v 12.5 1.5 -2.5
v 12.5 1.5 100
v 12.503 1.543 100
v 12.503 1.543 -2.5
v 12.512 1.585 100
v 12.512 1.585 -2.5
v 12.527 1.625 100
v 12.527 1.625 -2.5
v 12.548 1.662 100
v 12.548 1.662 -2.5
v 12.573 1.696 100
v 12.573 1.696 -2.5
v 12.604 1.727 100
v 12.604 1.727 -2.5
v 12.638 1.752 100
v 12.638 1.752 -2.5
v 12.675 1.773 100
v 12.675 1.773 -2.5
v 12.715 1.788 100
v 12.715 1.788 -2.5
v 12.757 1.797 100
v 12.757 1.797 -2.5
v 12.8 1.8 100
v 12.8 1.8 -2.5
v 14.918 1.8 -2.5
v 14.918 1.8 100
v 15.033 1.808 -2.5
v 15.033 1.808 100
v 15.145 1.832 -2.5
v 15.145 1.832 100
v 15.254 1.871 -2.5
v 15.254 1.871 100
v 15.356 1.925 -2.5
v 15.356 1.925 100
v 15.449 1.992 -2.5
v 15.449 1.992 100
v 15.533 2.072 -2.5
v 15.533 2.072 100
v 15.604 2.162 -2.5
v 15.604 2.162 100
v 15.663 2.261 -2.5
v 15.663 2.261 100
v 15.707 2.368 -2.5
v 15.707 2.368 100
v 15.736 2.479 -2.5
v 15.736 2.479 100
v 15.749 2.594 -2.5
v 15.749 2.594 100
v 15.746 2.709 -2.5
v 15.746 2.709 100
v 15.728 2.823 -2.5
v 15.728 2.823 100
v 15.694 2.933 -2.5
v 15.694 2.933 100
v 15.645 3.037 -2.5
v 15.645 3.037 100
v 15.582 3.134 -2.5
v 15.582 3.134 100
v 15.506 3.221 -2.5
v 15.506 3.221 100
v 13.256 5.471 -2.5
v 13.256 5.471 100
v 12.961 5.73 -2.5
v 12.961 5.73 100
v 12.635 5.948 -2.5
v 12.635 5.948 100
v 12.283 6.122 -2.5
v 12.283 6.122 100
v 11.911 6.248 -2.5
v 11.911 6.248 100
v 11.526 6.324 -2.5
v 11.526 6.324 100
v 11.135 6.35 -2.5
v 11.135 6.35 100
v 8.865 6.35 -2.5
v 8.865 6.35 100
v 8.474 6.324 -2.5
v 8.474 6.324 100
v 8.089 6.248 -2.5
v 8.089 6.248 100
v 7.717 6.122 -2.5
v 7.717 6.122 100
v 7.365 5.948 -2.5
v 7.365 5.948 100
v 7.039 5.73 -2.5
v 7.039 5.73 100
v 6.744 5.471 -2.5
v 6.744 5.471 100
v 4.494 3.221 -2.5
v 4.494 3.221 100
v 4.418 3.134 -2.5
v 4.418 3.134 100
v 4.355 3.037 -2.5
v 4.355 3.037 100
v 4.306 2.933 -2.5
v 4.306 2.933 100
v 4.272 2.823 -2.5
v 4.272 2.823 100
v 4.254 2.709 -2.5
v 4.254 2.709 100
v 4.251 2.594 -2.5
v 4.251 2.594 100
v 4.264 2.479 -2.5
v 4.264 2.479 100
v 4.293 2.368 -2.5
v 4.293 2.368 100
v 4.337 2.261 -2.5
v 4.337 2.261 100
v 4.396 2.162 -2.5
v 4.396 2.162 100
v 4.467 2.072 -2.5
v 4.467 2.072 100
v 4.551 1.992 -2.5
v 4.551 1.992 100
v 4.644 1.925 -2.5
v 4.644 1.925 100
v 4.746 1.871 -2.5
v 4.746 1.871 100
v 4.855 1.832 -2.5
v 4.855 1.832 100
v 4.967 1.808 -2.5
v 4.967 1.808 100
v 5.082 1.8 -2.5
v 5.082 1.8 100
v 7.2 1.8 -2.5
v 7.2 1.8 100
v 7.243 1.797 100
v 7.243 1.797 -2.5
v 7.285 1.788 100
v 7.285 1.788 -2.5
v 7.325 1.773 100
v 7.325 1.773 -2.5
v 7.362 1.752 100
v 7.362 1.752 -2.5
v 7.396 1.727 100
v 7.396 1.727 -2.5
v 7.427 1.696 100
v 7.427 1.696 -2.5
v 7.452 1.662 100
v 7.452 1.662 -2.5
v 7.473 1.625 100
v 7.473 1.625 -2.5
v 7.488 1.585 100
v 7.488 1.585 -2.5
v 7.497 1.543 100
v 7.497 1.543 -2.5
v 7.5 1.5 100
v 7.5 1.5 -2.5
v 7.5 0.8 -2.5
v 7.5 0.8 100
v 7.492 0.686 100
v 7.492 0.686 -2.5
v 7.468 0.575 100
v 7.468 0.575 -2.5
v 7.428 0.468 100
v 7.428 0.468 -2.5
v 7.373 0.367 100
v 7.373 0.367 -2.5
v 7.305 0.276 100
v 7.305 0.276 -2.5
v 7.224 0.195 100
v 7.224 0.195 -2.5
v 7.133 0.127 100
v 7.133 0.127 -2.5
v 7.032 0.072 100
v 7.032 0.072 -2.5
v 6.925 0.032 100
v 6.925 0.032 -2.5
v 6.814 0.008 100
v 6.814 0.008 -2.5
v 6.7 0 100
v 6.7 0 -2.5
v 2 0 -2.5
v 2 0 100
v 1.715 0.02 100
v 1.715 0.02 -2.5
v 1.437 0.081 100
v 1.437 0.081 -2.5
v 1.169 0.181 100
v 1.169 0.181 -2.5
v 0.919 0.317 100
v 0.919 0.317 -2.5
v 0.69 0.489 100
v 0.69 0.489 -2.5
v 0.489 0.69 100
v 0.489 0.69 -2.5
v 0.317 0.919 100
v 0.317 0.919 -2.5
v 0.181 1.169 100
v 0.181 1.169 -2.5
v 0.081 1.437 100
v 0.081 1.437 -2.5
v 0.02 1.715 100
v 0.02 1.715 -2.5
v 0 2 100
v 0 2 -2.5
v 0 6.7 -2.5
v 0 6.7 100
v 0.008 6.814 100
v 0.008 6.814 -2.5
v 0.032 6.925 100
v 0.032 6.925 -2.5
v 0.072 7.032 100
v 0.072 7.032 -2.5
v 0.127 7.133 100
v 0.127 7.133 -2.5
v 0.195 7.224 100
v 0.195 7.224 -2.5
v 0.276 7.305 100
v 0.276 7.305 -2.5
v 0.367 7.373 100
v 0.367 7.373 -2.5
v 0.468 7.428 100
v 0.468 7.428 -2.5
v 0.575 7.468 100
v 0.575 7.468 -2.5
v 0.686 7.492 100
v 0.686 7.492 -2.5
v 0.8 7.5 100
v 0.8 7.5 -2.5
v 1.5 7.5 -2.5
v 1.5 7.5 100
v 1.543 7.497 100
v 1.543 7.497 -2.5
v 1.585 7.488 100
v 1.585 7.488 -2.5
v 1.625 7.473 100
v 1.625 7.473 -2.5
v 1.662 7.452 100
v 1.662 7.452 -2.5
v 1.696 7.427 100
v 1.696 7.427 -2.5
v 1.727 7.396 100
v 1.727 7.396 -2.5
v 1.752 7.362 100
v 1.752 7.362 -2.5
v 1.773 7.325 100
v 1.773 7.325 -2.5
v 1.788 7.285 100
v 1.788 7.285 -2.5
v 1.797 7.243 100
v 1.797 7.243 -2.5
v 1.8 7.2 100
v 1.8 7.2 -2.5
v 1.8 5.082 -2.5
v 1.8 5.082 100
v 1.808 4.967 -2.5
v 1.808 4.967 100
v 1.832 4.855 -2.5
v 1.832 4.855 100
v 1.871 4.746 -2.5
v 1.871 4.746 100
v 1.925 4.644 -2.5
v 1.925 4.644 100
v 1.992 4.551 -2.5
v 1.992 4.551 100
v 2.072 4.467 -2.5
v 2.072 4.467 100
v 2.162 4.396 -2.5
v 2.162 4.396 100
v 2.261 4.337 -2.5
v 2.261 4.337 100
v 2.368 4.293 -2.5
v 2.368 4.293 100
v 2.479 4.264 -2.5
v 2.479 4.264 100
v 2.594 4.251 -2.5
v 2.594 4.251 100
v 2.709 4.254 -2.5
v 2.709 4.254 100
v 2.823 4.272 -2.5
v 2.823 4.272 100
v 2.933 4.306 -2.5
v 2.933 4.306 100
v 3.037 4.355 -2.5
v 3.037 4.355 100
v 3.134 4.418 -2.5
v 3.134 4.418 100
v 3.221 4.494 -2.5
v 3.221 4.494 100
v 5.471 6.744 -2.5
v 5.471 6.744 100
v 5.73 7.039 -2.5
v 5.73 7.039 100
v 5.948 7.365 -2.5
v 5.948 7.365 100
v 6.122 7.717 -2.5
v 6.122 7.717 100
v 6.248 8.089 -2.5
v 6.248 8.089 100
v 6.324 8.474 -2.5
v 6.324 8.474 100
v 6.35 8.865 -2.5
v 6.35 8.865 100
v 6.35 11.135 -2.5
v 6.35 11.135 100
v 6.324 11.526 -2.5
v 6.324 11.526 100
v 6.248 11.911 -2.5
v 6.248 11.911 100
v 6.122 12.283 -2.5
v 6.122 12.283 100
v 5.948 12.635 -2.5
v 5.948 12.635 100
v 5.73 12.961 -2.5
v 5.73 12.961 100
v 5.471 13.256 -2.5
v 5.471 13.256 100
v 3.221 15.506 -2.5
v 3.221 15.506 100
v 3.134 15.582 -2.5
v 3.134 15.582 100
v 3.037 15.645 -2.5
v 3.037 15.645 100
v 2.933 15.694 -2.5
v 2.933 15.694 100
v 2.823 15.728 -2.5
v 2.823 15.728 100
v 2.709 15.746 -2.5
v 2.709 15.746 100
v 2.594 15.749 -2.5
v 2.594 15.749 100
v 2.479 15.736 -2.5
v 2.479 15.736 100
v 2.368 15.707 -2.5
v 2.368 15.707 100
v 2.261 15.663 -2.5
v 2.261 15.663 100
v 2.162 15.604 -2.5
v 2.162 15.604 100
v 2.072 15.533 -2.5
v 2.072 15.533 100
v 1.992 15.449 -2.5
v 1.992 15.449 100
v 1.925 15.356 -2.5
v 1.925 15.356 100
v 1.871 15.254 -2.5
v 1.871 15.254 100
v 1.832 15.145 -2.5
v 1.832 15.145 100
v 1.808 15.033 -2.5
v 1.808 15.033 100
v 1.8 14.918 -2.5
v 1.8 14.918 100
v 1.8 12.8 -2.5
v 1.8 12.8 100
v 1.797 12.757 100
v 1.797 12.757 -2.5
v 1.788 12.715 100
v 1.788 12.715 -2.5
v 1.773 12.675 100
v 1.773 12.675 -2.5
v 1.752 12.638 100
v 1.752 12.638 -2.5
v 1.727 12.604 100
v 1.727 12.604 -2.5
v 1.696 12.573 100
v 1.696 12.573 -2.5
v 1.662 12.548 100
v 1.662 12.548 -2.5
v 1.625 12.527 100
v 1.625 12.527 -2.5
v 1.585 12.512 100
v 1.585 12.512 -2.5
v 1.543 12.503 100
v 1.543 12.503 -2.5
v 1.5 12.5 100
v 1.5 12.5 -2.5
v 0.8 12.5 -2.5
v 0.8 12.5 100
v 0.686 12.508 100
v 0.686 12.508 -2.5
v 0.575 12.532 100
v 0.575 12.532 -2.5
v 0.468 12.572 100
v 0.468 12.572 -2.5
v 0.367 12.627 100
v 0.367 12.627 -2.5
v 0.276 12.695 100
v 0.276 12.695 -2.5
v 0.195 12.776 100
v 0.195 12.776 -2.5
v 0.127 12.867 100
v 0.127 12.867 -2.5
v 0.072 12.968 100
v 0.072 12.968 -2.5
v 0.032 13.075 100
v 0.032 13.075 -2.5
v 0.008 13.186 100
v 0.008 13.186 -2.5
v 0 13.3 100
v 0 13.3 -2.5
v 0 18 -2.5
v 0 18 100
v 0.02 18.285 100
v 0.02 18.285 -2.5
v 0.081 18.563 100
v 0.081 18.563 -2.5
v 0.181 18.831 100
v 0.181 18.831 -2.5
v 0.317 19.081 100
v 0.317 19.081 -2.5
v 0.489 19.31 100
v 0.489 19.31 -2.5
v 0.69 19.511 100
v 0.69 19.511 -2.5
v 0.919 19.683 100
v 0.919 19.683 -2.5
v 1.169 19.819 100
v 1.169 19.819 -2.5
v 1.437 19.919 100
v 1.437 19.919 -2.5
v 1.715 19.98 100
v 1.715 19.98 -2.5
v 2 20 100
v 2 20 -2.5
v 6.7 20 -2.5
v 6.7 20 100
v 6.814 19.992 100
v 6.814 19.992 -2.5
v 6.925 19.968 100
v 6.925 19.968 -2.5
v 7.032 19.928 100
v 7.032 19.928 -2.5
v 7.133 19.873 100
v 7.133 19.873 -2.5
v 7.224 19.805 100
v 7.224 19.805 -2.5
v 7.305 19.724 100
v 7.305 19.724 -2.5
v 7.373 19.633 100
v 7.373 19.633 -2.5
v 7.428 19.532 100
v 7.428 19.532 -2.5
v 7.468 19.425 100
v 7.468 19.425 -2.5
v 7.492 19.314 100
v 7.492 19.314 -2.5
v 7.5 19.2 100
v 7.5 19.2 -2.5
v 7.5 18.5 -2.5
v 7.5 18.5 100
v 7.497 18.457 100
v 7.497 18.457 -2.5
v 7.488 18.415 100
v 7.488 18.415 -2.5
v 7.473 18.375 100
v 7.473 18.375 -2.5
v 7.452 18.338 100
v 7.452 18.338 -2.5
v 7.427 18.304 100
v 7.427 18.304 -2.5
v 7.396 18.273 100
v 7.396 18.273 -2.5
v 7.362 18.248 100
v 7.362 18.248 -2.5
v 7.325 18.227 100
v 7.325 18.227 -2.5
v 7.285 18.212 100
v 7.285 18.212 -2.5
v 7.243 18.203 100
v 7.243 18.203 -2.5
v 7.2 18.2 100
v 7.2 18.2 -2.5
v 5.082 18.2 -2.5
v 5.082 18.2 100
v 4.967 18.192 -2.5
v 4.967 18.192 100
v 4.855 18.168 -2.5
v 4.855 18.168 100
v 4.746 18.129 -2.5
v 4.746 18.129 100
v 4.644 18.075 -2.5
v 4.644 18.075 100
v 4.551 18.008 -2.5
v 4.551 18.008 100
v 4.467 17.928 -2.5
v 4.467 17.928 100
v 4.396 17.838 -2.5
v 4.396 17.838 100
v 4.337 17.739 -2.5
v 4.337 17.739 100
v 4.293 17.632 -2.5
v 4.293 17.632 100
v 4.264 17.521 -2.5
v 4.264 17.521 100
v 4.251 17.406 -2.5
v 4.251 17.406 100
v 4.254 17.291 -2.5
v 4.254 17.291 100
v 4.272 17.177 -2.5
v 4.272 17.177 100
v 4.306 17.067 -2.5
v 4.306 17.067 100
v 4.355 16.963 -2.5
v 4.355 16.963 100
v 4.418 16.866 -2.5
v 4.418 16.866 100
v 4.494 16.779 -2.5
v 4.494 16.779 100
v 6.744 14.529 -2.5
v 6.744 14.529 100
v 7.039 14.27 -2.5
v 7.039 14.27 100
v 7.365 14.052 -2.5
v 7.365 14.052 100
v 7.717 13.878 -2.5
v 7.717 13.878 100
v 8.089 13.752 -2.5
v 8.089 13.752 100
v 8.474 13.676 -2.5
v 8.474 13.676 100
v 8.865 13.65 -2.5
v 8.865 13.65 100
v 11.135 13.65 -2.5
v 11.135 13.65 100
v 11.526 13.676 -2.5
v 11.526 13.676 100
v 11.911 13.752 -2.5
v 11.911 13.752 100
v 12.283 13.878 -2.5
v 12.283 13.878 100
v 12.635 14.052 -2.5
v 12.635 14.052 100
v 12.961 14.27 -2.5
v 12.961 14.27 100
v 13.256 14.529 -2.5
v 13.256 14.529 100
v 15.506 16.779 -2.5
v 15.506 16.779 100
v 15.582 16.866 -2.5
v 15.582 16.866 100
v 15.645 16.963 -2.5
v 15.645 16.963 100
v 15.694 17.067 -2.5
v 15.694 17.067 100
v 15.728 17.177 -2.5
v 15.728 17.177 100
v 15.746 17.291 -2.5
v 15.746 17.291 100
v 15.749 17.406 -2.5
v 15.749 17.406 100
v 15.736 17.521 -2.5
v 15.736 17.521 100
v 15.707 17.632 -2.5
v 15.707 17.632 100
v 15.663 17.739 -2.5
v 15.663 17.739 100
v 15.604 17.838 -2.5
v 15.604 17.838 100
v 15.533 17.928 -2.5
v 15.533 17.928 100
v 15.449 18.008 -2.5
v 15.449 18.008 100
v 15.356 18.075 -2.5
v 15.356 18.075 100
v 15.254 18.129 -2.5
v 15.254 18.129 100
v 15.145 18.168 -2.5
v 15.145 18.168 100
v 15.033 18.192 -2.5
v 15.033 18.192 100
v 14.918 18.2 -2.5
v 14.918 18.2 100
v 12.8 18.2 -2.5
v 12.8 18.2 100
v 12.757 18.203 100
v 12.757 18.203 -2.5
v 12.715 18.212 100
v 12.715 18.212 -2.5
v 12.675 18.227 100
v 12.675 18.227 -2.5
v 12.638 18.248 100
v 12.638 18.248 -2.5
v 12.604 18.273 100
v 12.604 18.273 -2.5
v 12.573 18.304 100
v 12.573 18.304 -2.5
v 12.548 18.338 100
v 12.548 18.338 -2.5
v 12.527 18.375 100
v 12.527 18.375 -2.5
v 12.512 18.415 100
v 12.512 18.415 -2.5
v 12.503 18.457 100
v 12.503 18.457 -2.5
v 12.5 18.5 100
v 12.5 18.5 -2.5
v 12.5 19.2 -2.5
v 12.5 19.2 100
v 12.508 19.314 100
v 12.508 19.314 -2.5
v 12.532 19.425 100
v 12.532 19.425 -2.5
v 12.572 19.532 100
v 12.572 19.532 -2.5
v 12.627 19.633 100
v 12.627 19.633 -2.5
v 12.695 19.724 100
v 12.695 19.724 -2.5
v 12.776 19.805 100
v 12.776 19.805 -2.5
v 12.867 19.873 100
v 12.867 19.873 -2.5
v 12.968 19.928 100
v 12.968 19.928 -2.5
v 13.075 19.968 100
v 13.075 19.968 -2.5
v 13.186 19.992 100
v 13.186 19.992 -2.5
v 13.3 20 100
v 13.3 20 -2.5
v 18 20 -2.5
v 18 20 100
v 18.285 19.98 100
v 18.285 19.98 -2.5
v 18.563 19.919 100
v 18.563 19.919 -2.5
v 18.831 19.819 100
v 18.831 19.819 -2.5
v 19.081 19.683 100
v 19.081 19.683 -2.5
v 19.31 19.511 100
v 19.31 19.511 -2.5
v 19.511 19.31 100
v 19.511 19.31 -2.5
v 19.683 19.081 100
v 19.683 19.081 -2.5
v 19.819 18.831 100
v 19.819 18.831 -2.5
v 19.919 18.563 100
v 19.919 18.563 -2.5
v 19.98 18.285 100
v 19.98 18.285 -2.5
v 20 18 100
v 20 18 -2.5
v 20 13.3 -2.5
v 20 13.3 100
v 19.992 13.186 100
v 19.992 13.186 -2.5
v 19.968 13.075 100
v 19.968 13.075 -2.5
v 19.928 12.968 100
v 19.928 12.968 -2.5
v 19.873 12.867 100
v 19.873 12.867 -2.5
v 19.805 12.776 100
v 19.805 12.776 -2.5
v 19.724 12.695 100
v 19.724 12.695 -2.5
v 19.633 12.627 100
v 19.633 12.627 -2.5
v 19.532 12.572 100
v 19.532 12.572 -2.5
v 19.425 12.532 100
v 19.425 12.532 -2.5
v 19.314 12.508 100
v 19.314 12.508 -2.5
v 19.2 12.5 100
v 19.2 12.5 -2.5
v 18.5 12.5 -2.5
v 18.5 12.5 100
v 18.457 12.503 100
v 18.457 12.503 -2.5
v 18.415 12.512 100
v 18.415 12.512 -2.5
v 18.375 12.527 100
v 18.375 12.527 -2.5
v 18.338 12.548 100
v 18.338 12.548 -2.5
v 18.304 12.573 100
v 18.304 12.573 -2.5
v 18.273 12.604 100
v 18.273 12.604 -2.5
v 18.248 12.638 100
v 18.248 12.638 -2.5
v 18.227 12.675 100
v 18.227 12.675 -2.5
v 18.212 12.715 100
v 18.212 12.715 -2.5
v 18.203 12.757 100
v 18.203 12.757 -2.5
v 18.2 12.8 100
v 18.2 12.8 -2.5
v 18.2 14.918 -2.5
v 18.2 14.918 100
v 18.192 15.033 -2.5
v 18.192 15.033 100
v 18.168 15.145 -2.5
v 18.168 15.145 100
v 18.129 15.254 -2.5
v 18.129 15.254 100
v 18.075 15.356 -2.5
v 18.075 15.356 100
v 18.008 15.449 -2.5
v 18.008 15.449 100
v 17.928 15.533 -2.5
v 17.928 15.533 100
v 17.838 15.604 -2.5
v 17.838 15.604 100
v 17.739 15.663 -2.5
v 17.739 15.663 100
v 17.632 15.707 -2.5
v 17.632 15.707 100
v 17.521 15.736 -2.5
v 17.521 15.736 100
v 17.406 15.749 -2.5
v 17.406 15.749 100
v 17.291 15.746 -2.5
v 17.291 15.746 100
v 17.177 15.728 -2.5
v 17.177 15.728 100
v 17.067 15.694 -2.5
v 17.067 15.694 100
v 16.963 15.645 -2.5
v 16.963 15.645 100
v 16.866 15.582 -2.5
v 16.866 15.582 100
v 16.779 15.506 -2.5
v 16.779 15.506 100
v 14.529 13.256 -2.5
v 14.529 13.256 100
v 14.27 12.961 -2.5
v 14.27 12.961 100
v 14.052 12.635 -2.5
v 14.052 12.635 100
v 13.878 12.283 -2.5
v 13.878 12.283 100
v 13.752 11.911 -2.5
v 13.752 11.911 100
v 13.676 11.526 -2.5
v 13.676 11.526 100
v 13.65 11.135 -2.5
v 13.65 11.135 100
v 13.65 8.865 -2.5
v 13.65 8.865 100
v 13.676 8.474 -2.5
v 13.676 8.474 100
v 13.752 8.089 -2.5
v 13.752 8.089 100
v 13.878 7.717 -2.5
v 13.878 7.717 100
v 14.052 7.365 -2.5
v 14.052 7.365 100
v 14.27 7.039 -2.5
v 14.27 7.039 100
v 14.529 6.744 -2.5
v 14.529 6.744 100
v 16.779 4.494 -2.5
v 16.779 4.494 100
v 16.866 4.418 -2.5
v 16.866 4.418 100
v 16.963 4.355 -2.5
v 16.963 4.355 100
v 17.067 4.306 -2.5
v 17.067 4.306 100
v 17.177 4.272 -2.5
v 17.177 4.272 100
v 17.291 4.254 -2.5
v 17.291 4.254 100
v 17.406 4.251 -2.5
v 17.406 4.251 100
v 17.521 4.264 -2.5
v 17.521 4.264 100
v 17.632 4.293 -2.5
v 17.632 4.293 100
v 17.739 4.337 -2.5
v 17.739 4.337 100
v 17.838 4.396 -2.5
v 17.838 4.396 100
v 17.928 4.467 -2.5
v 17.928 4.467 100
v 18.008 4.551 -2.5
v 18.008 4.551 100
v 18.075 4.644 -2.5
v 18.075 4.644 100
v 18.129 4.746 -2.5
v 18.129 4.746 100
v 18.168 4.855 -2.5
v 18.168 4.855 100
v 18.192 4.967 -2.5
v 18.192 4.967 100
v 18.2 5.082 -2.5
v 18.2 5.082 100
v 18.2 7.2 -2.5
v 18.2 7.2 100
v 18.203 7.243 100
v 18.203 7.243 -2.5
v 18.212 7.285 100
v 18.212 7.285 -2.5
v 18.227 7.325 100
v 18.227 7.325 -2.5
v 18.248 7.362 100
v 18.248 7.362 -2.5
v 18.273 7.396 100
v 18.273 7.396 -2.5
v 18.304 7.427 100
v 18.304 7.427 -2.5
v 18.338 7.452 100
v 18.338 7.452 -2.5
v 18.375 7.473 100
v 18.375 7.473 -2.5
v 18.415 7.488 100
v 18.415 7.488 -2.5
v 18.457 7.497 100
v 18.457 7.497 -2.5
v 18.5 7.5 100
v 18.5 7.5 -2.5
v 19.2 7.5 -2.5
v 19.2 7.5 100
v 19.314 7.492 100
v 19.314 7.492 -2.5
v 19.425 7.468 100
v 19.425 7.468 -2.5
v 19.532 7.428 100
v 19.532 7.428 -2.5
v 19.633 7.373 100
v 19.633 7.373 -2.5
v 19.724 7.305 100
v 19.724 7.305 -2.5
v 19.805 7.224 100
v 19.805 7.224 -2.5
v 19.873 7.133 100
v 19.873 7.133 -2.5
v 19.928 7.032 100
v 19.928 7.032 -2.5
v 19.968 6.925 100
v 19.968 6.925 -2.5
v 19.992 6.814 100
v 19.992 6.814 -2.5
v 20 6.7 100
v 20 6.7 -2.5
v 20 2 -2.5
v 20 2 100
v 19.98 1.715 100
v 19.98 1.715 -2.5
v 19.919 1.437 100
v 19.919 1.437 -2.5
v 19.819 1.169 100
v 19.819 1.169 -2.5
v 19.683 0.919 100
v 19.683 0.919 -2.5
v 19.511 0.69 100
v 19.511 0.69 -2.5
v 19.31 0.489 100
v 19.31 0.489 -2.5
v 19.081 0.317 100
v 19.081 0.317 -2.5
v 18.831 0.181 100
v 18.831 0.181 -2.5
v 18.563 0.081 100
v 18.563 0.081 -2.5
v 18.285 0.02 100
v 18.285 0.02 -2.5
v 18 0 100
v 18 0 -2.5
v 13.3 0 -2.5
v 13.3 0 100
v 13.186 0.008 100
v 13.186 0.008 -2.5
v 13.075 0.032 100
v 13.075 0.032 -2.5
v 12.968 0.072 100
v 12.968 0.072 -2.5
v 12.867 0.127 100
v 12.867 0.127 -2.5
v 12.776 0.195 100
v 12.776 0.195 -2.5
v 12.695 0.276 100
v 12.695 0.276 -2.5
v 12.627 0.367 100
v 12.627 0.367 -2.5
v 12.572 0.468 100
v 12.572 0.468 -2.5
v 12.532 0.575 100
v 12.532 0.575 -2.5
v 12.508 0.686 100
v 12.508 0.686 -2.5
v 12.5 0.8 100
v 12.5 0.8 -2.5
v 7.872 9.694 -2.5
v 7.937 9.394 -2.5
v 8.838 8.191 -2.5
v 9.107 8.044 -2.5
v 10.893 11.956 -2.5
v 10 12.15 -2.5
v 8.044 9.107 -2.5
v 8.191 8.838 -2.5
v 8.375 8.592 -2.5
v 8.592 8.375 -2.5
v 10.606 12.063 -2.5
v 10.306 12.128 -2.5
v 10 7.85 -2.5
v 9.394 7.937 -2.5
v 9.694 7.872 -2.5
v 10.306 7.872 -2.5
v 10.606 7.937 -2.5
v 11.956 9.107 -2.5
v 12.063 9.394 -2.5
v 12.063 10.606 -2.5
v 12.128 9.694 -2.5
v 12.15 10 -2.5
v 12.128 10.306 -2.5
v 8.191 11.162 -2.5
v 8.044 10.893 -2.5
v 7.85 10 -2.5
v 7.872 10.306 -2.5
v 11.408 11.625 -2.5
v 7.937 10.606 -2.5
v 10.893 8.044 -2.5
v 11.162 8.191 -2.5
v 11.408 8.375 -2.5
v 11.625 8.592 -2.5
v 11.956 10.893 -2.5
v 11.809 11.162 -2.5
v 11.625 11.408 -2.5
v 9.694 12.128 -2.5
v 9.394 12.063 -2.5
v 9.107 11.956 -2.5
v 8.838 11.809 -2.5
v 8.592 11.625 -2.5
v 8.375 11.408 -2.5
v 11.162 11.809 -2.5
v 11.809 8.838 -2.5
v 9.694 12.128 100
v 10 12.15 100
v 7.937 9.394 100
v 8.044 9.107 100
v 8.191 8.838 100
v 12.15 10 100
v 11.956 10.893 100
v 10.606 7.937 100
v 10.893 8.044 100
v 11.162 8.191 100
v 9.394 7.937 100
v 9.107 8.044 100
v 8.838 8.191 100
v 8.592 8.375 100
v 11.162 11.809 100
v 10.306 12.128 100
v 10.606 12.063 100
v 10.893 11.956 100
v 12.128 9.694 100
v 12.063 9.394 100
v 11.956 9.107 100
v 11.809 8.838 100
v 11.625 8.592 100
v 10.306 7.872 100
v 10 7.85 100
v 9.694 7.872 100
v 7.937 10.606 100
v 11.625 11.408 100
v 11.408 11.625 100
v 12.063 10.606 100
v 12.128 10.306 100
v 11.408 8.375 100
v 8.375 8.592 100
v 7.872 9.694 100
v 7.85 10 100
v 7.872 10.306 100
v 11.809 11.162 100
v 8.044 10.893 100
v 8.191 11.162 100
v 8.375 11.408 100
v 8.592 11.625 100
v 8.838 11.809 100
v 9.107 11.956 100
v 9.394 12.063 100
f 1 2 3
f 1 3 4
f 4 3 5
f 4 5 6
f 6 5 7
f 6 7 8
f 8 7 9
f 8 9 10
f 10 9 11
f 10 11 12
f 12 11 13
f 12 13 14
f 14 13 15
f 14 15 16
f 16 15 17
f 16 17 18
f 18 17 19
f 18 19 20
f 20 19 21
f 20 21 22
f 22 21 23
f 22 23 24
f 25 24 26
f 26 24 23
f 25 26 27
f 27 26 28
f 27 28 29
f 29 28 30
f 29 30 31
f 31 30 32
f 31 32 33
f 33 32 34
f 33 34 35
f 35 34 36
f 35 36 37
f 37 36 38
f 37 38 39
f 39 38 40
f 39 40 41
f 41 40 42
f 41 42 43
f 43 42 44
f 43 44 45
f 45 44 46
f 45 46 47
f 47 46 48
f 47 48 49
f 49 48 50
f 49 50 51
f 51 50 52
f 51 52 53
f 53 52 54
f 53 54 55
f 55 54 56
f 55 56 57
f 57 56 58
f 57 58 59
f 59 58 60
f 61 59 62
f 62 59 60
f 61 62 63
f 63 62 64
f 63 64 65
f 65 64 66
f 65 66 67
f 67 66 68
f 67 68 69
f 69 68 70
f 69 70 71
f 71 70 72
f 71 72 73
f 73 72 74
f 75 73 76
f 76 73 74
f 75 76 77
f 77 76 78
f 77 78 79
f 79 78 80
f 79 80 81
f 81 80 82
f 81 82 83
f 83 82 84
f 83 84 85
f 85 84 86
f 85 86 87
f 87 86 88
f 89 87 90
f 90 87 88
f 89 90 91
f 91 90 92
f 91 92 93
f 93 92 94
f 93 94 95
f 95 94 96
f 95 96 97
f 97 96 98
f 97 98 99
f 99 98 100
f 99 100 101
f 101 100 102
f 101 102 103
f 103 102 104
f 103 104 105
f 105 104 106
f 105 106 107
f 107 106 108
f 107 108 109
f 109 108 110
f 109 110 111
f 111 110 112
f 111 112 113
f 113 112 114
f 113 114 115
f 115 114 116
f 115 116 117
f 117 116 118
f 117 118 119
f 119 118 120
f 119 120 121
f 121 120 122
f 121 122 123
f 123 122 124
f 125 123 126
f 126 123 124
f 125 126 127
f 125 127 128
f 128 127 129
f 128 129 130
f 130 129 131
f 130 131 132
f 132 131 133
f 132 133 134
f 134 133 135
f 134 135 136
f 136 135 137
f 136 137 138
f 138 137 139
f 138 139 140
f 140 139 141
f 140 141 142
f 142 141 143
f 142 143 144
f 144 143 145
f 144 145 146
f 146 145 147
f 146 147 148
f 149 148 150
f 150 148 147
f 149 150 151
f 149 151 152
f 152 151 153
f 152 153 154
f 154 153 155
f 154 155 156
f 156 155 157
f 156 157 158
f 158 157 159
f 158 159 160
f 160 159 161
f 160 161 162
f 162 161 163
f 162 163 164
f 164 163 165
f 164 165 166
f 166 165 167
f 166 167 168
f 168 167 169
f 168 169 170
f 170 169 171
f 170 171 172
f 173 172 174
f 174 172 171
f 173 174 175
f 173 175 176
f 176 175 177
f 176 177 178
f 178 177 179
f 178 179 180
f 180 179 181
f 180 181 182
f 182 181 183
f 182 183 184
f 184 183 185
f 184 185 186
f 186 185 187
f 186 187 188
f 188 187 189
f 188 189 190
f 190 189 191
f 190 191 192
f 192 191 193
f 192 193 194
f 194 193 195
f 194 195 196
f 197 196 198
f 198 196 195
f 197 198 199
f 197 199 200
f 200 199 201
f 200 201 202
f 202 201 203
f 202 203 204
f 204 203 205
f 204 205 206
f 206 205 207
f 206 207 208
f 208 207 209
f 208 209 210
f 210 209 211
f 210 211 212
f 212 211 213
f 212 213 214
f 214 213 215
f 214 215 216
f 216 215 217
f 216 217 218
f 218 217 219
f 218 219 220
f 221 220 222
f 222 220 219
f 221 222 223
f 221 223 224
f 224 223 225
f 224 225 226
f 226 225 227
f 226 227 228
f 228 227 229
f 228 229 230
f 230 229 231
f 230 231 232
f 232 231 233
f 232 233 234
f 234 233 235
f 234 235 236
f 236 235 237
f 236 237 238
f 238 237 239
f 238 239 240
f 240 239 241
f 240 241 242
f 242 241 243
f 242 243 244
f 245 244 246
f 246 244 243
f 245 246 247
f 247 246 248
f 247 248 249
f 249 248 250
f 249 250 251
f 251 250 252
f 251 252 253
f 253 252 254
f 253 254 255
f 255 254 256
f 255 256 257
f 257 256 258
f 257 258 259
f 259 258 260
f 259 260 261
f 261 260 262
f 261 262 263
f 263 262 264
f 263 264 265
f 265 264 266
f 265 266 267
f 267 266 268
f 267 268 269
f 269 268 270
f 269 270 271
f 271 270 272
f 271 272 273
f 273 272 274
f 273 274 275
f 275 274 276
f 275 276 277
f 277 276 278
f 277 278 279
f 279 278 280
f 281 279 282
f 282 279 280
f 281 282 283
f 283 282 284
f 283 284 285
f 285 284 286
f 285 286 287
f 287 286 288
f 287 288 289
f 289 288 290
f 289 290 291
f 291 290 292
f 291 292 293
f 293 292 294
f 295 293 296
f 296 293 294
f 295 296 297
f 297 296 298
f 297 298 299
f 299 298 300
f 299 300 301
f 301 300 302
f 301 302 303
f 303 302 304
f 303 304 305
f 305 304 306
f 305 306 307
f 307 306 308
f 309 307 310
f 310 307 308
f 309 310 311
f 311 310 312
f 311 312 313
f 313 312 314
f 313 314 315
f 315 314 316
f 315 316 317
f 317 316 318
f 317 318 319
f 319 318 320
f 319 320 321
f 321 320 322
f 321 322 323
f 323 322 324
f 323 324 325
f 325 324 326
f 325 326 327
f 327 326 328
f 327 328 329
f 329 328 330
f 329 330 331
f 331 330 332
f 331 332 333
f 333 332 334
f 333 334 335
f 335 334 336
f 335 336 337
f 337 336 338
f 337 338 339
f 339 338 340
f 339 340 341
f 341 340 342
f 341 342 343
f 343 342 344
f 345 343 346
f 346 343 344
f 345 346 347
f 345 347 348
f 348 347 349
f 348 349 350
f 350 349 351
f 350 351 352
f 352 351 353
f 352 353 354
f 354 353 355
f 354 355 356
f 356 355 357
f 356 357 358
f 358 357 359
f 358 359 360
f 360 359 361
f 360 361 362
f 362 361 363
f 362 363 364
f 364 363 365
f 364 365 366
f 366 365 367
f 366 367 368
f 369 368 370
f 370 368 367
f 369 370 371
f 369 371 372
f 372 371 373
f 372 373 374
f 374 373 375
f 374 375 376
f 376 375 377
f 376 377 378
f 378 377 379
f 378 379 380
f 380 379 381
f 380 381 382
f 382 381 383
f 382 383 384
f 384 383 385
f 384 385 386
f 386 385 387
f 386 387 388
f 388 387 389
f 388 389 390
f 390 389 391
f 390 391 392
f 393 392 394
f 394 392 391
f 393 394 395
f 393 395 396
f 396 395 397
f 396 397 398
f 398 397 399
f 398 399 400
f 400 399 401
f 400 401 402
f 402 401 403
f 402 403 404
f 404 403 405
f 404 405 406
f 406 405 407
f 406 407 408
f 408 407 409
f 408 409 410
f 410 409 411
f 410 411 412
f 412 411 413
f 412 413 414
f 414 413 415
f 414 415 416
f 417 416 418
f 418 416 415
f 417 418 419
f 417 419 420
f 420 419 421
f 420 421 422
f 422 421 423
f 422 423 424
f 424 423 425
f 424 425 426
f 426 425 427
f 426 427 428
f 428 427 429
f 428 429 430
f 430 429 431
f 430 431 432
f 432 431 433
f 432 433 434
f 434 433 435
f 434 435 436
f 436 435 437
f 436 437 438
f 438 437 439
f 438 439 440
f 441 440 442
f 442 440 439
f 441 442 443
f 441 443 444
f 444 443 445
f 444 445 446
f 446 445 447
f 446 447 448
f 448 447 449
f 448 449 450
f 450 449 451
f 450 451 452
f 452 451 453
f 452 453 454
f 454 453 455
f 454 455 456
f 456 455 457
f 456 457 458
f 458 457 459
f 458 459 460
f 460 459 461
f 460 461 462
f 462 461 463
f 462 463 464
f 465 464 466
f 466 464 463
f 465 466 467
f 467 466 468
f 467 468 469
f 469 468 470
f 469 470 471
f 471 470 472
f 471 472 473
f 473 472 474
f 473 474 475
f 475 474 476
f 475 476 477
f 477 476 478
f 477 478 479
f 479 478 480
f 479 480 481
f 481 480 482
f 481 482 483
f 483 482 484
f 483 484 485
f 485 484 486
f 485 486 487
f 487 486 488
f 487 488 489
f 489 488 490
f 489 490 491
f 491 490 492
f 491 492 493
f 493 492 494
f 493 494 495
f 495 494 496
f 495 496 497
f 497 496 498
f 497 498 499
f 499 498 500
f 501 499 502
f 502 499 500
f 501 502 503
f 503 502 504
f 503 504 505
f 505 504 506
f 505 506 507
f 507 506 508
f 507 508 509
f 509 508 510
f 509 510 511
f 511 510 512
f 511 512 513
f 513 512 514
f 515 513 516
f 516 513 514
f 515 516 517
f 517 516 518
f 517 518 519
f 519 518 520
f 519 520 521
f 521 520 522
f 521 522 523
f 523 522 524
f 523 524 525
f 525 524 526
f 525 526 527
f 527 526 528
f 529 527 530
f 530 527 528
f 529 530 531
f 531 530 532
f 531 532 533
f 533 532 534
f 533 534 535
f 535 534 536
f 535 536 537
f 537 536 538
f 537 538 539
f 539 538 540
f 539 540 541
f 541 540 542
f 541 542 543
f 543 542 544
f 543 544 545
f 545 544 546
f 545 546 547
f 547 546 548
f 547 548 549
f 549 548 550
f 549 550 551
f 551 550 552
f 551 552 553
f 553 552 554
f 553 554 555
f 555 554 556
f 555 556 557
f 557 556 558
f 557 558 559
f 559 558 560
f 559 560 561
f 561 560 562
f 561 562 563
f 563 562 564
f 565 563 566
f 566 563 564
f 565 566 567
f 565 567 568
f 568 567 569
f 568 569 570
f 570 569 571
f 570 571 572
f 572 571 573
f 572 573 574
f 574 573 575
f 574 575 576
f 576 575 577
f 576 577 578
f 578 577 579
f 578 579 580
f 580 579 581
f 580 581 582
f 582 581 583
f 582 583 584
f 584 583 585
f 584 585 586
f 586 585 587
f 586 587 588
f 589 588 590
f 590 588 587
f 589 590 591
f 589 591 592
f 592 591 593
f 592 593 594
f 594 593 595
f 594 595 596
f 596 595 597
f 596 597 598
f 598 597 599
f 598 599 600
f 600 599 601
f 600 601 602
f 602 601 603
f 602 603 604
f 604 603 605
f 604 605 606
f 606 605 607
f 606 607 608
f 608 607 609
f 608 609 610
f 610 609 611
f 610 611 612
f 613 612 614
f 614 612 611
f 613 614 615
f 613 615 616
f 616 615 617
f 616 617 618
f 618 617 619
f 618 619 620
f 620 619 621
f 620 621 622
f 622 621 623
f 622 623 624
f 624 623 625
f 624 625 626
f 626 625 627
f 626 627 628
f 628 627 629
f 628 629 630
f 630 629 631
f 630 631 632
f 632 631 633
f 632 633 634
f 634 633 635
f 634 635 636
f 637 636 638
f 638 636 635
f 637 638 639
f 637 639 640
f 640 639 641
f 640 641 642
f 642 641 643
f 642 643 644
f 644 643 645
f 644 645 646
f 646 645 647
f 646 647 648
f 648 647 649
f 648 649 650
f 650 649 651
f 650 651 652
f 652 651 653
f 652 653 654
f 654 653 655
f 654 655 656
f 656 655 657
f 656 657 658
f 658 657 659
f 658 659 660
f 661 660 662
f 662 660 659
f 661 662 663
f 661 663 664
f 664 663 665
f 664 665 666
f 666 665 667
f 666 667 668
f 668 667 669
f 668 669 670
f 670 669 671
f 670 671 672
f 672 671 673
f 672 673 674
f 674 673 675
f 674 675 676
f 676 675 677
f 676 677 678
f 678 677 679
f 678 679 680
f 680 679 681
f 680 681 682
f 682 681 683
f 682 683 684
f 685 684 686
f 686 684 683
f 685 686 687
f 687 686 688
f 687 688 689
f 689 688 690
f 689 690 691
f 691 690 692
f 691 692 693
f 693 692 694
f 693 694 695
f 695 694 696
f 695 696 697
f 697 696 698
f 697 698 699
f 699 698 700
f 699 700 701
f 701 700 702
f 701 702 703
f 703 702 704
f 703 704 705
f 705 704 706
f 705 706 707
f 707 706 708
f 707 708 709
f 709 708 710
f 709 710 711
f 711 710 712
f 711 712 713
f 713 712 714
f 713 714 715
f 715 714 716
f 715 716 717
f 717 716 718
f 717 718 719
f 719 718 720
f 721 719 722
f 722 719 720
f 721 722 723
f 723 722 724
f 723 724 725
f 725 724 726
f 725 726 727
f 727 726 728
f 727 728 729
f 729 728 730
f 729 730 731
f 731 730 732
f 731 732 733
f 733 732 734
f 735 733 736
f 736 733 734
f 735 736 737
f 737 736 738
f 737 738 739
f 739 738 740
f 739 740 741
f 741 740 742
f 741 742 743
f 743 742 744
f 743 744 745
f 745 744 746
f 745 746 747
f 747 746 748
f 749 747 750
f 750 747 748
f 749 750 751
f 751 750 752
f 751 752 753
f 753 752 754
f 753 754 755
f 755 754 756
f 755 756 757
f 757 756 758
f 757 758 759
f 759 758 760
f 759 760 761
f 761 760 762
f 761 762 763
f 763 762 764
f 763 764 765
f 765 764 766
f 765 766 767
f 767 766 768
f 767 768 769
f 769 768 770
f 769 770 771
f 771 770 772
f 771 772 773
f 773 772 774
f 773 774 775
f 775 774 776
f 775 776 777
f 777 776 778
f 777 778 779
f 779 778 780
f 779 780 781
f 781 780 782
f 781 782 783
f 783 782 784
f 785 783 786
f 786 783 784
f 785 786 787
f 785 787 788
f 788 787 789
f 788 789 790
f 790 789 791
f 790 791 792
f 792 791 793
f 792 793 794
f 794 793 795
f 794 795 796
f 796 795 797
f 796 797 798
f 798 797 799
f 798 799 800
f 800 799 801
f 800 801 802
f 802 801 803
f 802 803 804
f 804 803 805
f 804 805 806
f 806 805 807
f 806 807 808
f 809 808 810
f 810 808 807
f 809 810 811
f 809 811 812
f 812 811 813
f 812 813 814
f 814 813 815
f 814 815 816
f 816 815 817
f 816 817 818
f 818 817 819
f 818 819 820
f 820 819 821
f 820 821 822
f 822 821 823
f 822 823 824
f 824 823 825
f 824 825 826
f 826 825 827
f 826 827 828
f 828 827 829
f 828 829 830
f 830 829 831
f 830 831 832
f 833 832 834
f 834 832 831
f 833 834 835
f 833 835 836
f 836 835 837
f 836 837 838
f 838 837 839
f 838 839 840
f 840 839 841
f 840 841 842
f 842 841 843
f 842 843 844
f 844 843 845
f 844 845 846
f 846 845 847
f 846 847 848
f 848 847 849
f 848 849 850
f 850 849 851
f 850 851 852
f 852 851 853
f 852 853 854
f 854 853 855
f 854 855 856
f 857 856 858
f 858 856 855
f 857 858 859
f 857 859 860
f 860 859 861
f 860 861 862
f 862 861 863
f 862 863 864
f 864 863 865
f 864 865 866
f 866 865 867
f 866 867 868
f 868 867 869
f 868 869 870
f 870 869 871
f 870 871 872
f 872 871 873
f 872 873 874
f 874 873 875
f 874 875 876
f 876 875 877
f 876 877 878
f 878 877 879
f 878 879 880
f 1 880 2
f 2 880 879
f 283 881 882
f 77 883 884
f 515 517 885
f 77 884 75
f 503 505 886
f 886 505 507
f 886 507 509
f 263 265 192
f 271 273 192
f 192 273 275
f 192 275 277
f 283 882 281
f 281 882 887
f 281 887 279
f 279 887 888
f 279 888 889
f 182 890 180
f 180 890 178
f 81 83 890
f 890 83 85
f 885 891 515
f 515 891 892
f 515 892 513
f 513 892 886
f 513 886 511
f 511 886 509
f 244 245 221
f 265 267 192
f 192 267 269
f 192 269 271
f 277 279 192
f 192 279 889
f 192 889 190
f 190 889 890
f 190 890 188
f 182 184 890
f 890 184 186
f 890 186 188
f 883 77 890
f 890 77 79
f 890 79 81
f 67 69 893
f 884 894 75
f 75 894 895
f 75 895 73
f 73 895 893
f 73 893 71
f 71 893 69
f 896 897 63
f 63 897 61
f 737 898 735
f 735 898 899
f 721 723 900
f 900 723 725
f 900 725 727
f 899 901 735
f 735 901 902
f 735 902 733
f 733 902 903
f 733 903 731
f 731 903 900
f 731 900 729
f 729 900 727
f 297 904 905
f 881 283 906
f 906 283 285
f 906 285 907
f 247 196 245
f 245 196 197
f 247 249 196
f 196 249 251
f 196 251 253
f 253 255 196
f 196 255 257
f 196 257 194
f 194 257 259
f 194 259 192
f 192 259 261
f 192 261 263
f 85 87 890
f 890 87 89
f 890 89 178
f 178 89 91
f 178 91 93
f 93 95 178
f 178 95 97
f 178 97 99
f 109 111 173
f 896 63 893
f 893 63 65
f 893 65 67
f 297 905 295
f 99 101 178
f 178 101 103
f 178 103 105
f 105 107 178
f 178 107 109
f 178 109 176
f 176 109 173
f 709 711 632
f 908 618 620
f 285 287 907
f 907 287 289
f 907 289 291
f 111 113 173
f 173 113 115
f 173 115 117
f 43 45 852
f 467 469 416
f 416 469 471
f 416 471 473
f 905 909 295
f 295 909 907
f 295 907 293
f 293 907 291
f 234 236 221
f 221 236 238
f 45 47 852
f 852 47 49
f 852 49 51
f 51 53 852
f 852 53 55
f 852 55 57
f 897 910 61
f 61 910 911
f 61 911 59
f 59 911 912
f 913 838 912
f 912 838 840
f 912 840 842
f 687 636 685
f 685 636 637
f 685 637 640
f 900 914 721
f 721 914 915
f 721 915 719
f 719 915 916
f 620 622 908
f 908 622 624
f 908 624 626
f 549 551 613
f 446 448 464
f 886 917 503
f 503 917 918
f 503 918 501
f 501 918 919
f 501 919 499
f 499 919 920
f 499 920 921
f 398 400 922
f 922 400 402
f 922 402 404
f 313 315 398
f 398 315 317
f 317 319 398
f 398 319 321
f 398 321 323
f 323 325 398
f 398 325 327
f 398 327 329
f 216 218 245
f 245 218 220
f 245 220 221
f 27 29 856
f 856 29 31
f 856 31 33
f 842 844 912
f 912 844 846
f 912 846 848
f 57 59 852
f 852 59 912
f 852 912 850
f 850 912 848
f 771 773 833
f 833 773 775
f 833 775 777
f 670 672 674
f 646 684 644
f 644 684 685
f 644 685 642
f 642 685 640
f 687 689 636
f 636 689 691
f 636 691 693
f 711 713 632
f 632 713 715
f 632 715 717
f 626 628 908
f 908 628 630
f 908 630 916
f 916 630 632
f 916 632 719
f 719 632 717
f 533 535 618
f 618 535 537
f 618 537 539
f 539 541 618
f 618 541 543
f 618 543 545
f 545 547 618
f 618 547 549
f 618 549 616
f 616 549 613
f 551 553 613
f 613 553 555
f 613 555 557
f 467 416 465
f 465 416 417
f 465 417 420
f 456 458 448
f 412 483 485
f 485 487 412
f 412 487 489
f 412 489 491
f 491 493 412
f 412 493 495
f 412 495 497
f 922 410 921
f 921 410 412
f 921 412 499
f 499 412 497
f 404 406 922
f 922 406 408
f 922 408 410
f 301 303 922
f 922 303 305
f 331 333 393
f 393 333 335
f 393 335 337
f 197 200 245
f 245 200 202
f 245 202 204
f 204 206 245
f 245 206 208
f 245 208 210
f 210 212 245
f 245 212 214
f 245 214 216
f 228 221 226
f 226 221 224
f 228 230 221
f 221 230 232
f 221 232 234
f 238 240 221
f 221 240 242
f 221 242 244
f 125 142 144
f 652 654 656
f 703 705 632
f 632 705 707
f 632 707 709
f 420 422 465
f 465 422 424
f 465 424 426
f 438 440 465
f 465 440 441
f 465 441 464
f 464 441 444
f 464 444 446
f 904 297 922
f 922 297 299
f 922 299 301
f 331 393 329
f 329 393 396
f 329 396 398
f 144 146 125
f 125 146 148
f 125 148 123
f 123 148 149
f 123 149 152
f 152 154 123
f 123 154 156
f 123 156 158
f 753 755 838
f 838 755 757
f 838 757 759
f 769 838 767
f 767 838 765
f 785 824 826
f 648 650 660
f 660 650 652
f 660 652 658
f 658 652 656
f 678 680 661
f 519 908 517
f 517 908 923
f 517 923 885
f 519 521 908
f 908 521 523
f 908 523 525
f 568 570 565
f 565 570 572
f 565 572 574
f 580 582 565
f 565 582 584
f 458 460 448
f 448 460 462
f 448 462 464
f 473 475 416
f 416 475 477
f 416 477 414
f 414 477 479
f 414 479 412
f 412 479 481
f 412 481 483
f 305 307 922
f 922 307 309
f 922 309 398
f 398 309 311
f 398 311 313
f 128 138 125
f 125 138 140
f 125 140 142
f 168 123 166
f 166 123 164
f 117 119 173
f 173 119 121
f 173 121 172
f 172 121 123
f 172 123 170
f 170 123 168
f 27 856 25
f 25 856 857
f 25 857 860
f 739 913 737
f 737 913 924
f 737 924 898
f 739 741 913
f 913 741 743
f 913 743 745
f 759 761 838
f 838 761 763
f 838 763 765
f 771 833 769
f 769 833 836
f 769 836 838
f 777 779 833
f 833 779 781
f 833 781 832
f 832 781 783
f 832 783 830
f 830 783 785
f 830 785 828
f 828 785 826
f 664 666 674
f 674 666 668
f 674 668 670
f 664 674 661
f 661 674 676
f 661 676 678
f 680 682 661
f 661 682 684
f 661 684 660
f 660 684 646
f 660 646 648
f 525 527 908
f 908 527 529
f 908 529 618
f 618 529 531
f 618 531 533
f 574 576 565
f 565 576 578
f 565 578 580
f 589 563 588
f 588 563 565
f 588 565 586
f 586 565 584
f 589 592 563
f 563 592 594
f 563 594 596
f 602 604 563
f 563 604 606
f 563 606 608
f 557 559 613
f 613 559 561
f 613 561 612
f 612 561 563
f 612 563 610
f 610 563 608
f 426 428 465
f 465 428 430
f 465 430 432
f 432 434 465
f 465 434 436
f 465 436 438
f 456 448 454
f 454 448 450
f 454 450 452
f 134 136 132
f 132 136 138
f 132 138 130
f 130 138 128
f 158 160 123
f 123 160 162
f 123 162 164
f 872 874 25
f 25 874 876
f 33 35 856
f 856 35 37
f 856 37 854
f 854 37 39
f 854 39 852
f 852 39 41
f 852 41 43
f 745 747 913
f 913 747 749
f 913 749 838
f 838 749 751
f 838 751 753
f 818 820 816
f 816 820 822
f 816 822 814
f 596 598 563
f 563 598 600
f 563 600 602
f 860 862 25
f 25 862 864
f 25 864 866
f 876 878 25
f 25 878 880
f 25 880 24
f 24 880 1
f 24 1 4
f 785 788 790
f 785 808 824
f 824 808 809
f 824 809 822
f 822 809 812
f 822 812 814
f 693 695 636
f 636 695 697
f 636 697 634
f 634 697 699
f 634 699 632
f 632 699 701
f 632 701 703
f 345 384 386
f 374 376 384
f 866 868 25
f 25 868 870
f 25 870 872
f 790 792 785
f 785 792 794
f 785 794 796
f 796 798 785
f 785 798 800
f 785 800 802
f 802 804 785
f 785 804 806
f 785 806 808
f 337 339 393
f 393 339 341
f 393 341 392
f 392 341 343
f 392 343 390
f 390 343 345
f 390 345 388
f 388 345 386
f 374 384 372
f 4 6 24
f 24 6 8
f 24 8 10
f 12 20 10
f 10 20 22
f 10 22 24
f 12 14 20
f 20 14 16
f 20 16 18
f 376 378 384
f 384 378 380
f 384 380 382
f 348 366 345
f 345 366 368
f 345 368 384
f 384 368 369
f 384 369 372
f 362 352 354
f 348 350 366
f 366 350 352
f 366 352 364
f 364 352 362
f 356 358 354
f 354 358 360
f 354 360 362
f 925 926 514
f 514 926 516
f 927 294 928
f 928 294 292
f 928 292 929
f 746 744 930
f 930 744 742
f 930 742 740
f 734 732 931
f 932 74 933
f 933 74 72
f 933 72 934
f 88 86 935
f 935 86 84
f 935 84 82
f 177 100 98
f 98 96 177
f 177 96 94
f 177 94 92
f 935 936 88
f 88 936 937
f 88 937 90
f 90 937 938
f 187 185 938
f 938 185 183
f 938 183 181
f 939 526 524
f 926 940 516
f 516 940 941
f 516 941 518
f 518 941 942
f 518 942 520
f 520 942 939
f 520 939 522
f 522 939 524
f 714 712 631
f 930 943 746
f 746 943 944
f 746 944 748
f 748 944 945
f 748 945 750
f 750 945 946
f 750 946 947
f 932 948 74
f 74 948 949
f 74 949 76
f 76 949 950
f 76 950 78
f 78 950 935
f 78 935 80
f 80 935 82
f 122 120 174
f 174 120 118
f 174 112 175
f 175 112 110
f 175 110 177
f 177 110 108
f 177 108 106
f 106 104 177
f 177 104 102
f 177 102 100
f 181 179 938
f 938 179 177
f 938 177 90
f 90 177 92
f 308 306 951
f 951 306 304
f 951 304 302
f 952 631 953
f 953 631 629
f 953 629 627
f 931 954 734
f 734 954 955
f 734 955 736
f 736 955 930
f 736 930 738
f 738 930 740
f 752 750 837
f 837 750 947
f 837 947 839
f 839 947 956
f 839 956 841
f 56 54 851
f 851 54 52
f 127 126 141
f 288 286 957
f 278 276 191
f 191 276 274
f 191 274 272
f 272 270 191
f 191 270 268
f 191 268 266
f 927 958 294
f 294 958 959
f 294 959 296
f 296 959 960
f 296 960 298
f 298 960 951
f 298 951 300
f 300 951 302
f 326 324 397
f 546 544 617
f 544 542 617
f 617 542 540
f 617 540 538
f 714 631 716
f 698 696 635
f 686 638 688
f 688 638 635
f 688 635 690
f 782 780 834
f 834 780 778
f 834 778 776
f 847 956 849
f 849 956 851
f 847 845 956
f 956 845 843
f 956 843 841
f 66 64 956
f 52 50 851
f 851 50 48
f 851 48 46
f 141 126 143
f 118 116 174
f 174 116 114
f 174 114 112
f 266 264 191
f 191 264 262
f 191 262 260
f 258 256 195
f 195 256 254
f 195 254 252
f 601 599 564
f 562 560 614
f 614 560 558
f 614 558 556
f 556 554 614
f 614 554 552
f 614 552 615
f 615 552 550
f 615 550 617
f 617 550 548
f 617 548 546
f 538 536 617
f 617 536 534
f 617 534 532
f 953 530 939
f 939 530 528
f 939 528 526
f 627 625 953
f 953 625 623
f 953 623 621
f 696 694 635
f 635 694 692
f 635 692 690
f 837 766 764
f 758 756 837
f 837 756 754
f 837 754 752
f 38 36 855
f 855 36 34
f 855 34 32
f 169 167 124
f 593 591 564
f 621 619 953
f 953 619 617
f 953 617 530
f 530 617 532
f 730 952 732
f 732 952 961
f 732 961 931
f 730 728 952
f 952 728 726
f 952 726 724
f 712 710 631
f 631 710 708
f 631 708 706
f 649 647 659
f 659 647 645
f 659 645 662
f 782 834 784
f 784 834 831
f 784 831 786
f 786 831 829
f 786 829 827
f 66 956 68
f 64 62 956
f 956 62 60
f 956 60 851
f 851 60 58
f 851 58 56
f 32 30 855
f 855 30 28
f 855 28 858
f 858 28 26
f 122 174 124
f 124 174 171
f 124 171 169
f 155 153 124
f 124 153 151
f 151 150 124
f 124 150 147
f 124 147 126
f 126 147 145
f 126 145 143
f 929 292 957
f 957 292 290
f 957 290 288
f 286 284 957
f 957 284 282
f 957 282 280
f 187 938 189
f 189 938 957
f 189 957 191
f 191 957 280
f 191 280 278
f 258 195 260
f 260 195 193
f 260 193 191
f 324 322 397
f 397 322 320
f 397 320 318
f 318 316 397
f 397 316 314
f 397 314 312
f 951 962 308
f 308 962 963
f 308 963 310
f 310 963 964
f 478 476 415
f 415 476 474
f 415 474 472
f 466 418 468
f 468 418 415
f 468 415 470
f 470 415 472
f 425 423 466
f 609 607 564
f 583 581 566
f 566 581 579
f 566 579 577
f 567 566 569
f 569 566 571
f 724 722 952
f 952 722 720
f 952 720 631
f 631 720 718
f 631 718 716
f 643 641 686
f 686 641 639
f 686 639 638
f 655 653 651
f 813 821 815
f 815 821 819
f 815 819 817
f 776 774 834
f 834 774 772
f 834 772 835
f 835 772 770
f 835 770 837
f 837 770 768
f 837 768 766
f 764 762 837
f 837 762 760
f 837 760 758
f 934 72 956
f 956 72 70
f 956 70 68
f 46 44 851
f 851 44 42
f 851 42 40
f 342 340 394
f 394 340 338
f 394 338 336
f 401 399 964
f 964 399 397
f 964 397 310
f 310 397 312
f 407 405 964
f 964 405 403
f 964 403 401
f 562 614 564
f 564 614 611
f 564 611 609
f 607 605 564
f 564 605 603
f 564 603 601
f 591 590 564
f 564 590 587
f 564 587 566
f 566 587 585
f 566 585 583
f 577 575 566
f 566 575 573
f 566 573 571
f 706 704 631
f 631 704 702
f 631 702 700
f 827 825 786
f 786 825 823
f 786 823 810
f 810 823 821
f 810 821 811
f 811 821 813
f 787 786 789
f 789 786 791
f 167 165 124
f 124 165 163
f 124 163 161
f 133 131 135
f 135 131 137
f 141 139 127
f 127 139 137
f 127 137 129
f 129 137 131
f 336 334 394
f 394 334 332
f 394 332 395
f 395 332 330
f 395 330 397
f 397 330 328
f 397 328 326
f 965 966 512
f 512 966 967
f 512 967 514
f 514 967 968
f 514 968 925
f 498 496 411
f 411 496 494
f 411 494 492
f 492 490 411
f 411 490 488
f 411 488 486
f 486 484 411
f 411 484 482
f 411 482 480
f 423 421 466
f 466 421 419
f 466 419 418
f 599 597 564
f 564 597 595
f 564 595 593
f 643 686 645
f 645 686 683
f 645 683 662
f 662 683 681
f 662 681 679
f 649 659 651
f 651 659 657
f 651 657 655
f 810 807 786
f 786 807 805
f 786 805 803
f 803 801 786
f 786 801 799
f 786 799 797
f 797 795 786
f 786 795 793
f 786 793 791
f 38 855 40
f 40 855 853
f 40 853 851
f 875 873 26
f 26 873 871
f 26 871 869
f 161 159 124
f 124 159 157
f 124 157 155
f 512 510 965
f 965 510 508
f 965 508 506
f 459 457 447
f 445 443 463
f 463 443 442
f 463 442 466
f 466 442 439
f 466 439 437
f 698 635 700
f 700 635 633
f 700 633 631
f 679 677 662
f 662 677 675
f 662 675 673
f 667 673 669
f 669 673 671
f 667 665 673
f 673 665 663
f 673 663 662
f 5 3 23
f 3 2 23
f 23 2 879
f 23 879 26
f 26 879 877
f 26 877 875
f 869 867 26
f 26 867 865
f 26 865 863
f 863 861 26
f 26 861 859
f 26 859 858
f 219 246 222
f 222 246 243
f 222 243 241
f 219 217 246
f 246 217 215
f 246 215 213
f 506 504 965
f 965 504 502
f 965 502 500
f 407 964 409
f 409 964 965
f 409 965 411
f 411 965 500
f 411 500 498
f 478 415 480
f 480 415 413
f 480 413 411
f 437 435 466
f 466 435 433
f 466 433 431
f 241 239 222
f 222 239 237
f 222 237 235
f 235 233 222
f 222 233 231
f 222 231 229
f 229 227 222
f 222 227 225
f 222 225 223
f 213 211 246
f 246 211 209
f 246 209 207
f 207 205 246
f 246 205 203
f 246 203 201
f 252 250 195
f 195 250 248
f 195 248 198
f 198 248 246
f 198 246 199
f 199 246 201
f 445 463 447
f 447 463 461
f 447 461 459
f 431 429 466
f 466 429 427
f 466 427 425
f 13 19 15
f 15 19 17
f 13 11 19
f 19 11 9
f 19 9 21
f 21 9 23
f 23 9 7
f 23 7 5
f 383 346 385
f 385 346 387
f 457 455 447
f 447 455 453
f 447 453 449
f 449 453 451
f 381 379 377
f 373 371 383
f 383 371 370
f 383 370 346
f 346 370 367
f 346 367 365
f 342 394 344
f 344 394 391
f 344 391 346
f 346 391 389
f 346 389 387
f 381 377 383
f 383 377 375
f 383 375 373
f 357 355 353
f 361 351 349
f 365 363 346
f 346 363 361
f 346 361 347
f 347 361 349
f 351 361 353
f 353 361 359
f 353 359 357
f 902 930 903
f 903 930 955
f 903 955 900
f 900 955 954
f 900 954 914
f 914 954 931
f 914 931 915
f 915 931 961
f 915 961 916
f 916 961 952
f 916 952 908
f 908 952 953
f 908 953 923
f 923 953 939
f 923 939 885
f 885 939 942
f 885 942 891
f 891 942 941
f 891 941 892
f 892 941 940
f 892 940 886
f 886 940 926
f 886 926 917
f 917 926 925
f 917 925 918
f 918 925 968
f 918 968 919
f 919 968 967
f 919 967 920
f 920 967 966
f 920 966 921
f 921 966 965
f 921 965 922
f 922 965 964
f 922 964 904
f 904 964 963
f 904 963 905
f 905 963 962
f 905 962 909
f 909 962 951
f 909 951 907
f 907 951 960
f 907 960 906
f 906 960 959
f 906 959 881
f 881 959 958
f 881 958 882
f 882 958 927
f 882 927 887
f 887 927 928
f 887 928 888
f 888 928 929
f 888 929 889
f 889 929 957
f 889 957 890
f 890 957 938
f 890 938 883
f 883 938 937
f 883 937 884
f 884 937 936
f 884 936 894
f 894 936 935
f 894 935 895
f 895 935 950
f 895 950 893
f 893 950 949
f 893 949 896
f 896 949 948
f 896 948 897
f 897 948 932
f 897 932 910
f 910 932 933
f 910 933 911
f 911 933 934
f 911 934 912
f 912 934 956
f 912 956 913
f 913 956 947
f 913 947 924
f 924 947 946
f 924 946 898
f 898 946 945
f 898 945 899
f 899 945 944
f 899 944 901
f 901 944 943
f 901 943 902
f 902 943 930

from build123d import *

# Parameters (mm, degrees)
SKIZZE1_R                       = 2.15
AUFSATZ_LINEAR_AUSTRAGEN1_DEPTH = 102.5


with BuildPart() as part:
    # Skizze1 → Aufsatz-Linear austragen1 (new body)
    with BuildSketch(Plane.XY.offset(100)):
        with BuildLine():
            Line((12.499999989, 1.499999999), (12.499999989, 0.800000002))
            ThreePointArc((12.499999989, 0.800000002), (12.734314564, 0.234314576), (13.299999991, 0))
            Line((13.299999991, 0), (18, 0))
            ThreePointArc((18, 0), (19.414213562, 0.585786438), (20, 2))
            Line((20, 2), (20, 6.700000003))
            ThreePointArc((20, 6.700000003), (19.765685425, 7.265685427), (19.2, 7.500000003))
            Line((19.2, 7.500000003), (18.499999995, 7.500000003))
            ThreePointArc((18.499999995, 7.500000003), (18.287867961, 7.412132037), (18.199999995, 7.200000003))
            Line((18.199999995, 7.200000003), (18.199999995, 5.082411607))
            ThreePointArc((18.199999995, 5.082411607), (17.686138517, 4.313363558), (16.778984491, 4.493807713))
            Line((16.778984491, 4.493807713), (14.528679651, 6.744112553))
            ThreePointArc((14.528679651, 6.744112553), (13.878361397, 7.717382599), (13.649999995, 8.865432896))
            Line((13.649999995, 8.865432896), (13.649999995, 11.134567106))
            ThreePointArc((13.649999995, 11.134567106), (13.878361397, 12.282617403), (14.528679651, 13.255887449))
            Line((14.528679651, 13.255887449), (16.778984493, 15.506192291))
            ThreePointArc((16.778984493, 15.506192291), (17.686138518, 15.686636446), (18.199999995, 14.917588398))
            Line((18.199999995, 14.917588398), (18.199999995, 12.800000001))
            ThreePointArc((18.199999995, 12.800000001), (18.287867961, 12.587867966), (18.499999996, 12.5))
            Line((18.499999996, 12.5), (19.199999998, 12.5))
            ThreePointArc((19.199999998, 12.5), (19.765685424, 12.734314576), (20, 13.300000003))
            Line((20, 13.300000003), (20, 18))
            ThreePointArc((20, 18), (19.414213562, 19.414213562), (18, 20))
            Line((18, 20), (13.299999989, 20))
            ThreePointArc((13.299999989, 20), (12.734314564, 19.765685425), (12.499999989, 19.2))
            Line((12.499999989, 19.2), (12.499999989, 18.499999999))
            ThreePointArc((12.499999989, 18.499999999), (12.587867954, 18.287867964), (12.799999989, 18.199999999))
            Line((12.799999989, 18.199999999), (14.917588395, 18.199999999))
            ThreePointArc((14.917588395, 18.199999999), (15.686636445, 17.68613852), (15.50619229, 16.778984493))
            Line((15.50619229, 16.778984493), (13.255887454, 14.528679658))
            ThreePointArc((13.255887454, 14.528679658), (12.282617408, 13.878361404), (11.134567111, 13.650000002))
            Line((11.134567111, 13.650000002), (8.865432888, 13.650000002))
            ThreePointArc((8.865432888, 13.650000002), (7.717382592, 13.878361404), (6.744112546, 14.528679658))
            Line((6.744112546, 14.528679658), (4.493807706, 16.778984498))
            ThreePointArc((4.493807706, 16.778984498), (4.313363551, 17.686138522), (5.082411599, 18.199999999))
            Line((5.082411599, 18.199999999), (7.199999999, 18.199999999))
            ThreePointArc((7.199999999, 18.199999999), (7.412132034, 18.287867965), (7.5, 18.5))
            Line((7.5, 18.5), (7.5, 19.199999998))
            ThreePointArc((7.5, 19.199999998), (7.265685424, 19.765685424), (6.699999997, 20))
            Line((6.699999997, 20), (2, 20))
            ThreePointArc((2, 20), (0.585786438, 19.414213562), (0, 18))
            Line((0, 18), (0, 13.3))
            ThreePointArc((0, 13.3), (0.234314575, 12.734314575), (0.8, 12.5))
            Line((0.8, 12.5), (1.500000004, 12.5))
            ThreePointArc((1.500000004, 12.5), (1.712132038, 12.587867966), (1.800000004, 12.8))
            Line((1.800000004, 12.8), (1.800000004, 14.917588391))
            ThreePointArc((1.800000004, 14.917588391), (2.313861482, 15.68663644), (3.221015508, 15.506192285))
            Line((3.221015508, 15.506192285), (5.471320345, 13.255887449))
            ThreePointArc((5.471320345, 13.255887449), (6.121638599, 12.282617402), (6.350000001, 11.134567106))
            Line((6.350000001, 11.134567106), (6.350000001, 8.865432891))
            ThreePointArc((6.350000001, 8.865432891), (6.121638599, 7.717382594), (5.471320345, 6.744112548))
            Line((5.471320345, 6.744112548), (3.221015505, 4.493807708))
            ThreePointArc((3.221015505, 4.493807708), (2.313861481, 4.313363554), (1.800000004, 5.082411601))
            Line((1.800000004, 5.082411601), (1.800000004, 7.200000001))
            ThreePointArc((1.800000004, 7.200000001), (1.712132038, 7.412132036), (1.500000003, 7.500000002))
            Line((1.500000003, 7.500000002), (0.800000003, 7.500000002))
            ThreePointArc((0.800000003, 7.500000002), (0.234314576, 7.265685427), (0, 6.7))
            Line((0, 6.7), (0, 2))
            ThreePointArc((0, 2), (0.585786438, 0.585786438), (2, 0))
            Line((2, 0), (6.7, 0))
            ThreePointArc((6.7, 0), (7.265685425, 0.234314575), (7.5, 0.8))
            Line((7.5, 0.8), (7.5, 1.5))
            ThreePointArc((7.5, 1.5), (7.412132034, 1.712132034), (7.2, 1.8))
            Line((7.2, 1.8), (5.0824116, 1.8))
            ThreePointArc((5.0824116, 1.8), (4.313363551, 2.313861478), (4.493807706, 3.221015504))
            Line((4.493807706, 3.221015504), (6.744112546, 5.471320344))
            ThreePointArc((6.744112546, 5.471320344), (7.717382592, 6.121638598), (8.865432889, 6.35))
            Line((8.865432889, 6.35), (11.134567106, 6.35))
            ThreePointArc((11.134567106, 6.35), (12.282617403, 6.121638598), (13.255887449, 5.471320344))
            Line((13.255887449, 5.471320344), (15.506192291, 3.221015502))
            ThreePointArc((15.506192291, 3.221015502), (15.686636446, 2.313861477), (14.917588398, 1.8))
            Line((14.917588398, 1.8), (12.79999999, 1.8))
            ThreePointArc((12.79999999, 1.8), (12.587867955, 1.712132034), (12.499999989, 1.499999999))
        make_face()
        with Locations((10, 10)):
            Circle(SKIZZE1_R, mode=Mode.SUBTRACT)
    extrude(amount=-AUFSATZ_LINEAR_AUSTRAGEN1_DEPTH)


solid = part.part
